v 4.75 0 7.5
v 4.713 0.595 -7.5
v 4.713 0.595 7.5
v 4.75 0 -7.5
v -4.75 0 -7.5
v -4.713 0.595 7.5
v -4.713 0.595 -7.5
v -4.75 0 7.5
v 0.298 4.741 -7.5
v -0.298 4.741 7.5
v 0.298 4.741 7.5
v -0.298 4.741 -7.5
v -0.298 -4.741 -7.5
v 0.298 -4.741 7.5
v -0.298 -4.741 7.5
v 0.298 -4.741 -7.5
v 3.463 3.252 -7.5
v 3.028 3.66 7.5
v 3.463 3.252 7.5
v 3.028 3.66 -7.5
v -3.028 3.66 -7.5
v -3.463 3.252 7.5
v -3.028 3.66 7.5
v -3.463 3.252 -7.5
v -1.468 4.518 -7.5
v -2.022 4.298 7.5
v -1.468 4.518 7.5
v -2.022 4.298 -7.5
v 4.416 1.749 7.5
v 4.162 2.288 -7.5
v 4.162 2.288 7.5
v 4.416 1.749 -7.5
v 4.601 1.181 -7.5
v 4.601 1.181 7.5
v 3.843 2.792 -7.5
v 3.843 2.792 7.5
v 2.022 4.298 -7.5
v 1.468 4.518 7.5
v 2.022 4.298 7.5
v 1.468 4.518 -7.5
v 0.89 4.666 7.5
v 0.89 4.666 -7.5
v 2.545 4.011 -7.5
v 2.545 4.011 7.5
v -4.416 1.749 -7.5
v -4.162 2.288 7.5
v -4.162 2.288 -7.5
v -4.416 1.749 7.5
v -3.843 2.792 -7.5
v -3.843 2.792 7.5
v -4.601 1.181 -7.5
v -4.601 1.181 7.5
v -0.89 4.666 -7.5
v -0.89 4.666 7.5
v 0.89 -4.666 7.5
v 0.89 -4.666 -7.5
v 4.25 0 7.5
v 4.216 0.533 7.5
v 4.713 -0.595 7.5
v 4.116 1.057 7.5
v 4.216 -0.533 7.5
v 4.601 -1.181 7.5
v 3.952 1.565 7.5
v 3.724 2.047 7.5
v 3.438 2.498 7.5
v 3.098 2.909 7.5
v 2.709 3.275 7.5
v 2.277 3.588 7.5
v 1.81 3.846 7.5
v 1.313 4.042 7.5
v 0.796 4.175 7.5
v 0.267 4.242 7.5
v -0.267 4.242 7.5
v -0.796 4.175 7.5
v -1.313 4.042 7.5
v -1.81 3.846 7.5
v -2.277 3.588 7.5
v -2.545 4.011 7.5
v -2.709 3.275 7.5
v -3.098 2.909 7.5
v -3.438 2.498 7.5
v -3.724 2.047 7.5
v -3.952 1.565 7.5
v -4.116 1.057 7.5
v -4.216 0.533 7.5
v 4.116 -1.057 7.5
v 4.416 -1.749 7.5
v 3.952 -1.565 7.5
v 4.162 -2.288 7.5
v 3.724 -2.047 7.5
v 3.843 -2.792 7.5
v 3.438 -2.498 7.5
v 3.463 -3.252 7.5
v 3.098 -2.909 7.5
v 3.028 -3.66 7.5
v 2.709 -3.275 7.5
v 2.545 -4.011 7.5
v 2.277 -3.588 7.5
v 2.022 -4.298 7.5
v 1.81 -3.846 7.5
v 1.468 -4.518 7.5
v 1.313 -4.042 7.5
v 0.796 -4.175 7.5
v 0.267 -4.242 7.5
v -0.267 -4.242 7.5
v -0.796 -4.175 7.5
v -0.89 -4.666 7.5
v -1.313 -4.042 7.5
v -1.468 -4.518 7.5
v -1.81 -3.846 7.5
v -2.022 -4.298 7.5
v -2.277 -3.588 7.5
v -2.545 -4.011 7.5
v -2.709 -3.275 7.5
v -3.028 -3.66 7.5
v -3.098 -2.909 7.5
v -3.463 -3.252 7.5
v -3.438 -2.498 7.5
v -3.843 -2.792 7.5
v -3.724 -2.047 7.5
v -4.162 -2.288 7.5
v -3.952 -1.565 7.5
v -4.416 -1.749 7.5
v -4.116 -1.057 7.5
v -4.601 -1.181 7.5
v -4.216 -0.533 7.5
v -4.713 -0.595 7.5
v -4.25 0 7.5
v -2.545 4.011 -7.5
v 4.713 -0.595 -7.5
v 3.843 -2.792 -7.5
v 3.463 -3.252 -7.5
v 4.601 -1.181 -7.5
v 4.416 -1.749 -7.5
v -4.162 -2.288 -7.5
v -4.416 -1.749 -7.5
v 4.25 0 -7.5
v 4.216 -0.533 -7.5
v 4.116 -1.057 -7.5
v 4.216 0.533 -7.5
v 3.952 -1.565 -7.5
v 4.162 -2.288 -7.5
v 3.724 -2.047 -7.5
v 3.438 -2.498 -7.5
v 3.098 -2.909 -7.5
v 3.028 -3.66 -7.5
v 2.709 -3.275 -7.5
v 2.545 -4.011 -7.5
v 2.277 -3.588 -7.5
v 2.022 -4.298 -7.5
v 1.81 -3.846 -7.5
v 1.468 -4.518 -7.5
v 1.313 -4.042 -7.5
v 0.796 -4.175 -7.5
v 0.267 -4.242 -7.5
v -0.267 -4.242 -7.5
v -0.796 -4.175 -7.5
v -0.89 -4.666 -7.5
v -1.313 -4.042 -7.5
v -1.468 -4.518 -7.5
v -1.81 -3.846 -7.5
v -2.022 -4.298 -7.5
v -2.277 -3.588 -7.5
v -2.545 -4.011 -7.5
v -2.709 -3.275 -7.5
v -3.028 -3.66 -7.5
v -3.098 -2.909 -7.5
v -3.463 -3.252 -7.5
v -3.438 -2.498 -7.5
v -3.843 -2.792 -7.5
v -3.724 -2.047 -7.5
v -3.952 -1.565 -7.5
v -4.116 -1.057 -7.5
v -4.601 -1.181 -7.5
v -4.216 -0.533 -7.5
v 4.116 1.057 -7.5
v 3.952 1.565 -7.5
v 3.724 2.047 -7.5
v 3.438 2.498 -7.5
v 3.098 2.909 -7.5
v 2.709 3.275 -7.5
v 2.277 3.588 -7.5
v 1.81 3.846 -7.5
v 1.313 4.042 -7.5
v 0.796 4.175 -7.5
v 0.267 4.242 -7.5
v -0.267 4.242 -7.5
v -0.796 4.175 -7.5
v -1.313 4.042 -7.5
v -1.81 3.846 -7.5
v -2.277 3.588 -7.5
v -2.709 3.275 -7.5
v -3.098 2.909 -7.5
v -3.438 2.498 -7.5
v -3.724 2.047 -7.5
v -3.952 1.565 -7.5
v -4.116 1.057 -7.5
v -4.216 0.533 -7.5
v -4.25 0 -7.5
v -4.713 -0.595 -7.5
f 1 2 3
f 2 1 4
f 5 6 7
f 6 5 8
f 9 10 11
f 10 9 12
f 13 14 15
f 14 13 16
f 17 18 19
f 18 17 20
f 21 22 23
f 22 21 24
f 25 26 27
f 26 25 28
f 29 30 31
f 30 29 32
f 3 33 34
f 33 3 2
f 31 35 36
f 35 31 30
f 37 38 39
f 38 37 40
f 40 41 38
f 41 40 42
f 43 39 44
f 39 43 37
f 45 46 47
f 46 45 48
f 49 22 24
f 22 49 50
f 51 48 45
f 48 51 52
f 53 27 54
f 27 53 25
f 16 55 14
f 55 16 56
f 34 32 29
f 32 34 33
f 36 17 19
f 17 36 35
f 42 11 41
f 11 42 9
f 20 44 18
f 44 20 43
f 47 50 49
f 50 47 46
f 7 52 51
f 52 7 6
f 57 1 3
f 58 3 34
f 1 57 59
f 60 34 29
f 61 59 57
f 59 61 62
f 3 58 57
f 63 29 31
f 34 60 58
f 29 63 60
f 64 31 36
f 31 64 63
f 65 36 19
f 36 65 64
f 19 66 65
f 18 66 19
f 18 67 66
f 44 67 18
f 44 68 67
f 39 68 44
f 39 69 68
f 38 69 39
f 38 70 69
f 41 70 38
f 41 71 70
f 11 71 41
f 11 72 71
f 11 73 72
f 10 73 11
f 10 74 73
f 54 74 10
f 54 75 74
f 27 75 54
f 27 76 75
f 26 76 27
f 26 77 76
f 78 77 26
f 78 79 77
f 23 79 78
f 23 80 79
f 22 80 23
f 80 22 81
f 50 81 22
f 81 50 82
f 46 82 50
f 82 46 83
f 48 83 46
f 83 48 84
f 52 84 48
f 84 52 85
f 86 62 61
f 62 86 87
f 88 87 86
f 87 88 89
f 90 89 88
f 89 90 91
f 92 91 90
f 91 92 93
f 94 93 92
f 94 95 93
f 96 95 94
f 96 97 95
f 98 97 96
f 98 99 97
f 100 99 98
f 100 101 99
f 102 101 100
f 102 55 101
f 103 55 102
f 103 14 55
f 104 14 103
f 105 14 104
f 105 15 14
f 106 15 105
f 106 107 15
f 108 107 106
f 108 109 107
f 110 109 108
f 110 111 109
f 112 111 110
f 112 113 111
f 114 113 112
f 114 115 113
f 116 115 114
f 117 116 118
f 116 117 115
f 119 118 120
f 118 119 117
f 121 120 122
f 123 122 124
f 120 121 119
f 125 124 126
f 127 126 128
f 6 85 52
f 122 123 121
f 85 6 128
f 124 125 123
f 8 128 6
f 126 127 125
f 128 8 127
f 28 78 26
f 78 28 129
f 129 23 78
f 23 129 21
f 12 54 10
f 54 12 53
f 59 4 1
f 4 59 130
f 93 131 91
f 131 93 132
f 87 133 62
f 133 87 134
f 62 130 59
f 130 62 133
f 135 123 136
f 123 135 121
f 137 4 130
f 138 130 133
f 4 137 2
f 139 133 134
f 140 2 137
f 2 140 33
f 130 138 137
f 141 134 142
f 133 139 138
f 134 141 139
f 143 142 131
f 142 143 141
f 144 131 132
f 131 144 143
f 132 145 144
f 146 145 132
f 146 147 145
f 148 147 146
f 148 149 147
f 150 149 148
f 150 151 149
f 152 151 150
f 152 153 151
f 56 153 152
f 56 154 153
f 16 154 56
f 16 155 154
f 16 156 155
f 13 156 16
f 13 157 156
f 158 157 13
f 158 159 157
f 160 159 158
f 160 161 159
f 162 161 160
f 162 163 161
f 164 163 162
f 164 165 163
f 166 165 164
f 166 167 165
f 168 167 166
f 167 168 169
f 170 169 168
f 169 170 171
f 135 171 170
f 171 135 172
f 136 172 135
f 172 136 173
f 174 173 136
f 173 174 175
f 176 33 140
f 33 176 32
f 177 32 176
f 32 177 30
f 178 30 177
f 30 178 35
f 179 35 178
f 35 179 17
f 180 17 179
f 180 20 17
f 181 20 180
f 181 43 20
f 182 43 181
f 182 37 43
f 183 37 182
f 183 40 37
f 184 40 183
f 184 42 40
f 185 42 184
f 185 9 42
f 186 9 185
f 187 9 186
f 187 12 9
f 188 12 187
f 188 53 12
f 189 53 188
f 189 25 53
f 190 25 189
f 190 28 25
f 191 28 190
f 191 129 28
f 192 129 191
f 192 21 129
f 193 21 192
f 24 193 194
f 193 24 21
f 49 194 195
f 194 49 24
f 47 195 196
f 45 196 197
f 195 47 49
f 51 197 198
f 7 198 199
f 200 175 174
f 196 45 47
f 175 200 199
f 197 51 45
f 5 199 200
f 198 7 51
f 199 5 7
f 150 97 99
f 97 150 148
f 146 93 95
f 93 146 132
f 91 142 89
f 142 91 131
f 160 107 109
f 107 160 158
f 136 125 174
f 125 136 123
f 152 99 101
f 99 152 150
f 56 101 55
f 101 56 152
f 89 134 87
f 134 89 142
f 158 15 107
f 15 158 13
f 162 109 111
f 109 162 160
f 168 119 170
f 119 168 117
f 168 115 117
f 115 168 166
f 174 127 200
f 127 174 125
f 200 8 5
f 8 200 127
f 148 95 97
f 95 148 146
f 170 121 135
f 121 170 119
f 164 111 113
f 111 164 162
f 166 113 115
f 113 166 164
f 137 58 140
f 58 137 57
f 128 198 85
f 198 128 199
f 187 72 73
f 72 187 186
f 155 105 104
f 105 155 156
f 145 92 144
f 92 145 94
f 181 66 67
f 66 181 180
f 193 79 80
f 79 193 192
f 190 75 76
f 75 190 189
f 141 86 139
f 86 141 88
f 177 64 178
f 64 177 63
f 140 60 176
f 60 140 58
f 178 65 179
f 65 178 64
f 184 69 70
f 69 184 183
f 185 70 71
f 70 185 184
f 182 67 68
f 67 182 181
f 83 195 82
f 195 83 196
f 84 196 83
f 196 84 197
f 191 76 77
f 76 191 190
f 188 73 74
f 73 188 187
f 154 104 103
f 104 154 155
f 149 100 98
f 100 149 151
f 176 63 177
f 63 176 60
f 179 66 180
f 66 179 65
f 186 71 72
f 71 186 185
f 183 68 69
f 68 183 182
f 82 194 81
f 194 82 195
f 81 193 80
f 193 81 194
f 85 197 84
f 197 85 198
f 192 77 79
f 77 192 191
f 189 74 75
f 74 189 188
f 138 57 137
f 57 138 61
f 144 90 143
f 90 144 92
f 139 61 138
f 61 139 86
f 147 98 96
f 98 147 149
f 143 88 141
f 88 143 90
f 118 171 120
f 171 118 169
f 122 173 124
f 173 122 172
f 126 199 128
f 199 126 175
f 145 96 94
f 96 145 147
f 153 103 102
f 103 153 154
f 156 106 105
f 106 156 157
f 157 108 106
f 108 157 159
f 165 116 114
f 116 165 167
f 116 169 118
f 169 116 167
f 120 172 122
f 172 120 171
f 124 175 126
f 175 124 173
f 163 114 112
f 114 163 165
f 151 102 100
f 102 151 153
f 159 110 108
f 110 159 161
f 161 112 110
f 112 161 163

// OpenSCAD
$fn = 50;


difference() {
	union() {
		translate(v = [0, 0, -7.5000000000]) {
			cylinder(h = 15, r = 4.7500000000);
		}
	}
	union() {
		translate(v = [0, 0, -100.0000000000]) {
			cylinder(h = 200, r = 4.2500000000);
		}
	}
}
